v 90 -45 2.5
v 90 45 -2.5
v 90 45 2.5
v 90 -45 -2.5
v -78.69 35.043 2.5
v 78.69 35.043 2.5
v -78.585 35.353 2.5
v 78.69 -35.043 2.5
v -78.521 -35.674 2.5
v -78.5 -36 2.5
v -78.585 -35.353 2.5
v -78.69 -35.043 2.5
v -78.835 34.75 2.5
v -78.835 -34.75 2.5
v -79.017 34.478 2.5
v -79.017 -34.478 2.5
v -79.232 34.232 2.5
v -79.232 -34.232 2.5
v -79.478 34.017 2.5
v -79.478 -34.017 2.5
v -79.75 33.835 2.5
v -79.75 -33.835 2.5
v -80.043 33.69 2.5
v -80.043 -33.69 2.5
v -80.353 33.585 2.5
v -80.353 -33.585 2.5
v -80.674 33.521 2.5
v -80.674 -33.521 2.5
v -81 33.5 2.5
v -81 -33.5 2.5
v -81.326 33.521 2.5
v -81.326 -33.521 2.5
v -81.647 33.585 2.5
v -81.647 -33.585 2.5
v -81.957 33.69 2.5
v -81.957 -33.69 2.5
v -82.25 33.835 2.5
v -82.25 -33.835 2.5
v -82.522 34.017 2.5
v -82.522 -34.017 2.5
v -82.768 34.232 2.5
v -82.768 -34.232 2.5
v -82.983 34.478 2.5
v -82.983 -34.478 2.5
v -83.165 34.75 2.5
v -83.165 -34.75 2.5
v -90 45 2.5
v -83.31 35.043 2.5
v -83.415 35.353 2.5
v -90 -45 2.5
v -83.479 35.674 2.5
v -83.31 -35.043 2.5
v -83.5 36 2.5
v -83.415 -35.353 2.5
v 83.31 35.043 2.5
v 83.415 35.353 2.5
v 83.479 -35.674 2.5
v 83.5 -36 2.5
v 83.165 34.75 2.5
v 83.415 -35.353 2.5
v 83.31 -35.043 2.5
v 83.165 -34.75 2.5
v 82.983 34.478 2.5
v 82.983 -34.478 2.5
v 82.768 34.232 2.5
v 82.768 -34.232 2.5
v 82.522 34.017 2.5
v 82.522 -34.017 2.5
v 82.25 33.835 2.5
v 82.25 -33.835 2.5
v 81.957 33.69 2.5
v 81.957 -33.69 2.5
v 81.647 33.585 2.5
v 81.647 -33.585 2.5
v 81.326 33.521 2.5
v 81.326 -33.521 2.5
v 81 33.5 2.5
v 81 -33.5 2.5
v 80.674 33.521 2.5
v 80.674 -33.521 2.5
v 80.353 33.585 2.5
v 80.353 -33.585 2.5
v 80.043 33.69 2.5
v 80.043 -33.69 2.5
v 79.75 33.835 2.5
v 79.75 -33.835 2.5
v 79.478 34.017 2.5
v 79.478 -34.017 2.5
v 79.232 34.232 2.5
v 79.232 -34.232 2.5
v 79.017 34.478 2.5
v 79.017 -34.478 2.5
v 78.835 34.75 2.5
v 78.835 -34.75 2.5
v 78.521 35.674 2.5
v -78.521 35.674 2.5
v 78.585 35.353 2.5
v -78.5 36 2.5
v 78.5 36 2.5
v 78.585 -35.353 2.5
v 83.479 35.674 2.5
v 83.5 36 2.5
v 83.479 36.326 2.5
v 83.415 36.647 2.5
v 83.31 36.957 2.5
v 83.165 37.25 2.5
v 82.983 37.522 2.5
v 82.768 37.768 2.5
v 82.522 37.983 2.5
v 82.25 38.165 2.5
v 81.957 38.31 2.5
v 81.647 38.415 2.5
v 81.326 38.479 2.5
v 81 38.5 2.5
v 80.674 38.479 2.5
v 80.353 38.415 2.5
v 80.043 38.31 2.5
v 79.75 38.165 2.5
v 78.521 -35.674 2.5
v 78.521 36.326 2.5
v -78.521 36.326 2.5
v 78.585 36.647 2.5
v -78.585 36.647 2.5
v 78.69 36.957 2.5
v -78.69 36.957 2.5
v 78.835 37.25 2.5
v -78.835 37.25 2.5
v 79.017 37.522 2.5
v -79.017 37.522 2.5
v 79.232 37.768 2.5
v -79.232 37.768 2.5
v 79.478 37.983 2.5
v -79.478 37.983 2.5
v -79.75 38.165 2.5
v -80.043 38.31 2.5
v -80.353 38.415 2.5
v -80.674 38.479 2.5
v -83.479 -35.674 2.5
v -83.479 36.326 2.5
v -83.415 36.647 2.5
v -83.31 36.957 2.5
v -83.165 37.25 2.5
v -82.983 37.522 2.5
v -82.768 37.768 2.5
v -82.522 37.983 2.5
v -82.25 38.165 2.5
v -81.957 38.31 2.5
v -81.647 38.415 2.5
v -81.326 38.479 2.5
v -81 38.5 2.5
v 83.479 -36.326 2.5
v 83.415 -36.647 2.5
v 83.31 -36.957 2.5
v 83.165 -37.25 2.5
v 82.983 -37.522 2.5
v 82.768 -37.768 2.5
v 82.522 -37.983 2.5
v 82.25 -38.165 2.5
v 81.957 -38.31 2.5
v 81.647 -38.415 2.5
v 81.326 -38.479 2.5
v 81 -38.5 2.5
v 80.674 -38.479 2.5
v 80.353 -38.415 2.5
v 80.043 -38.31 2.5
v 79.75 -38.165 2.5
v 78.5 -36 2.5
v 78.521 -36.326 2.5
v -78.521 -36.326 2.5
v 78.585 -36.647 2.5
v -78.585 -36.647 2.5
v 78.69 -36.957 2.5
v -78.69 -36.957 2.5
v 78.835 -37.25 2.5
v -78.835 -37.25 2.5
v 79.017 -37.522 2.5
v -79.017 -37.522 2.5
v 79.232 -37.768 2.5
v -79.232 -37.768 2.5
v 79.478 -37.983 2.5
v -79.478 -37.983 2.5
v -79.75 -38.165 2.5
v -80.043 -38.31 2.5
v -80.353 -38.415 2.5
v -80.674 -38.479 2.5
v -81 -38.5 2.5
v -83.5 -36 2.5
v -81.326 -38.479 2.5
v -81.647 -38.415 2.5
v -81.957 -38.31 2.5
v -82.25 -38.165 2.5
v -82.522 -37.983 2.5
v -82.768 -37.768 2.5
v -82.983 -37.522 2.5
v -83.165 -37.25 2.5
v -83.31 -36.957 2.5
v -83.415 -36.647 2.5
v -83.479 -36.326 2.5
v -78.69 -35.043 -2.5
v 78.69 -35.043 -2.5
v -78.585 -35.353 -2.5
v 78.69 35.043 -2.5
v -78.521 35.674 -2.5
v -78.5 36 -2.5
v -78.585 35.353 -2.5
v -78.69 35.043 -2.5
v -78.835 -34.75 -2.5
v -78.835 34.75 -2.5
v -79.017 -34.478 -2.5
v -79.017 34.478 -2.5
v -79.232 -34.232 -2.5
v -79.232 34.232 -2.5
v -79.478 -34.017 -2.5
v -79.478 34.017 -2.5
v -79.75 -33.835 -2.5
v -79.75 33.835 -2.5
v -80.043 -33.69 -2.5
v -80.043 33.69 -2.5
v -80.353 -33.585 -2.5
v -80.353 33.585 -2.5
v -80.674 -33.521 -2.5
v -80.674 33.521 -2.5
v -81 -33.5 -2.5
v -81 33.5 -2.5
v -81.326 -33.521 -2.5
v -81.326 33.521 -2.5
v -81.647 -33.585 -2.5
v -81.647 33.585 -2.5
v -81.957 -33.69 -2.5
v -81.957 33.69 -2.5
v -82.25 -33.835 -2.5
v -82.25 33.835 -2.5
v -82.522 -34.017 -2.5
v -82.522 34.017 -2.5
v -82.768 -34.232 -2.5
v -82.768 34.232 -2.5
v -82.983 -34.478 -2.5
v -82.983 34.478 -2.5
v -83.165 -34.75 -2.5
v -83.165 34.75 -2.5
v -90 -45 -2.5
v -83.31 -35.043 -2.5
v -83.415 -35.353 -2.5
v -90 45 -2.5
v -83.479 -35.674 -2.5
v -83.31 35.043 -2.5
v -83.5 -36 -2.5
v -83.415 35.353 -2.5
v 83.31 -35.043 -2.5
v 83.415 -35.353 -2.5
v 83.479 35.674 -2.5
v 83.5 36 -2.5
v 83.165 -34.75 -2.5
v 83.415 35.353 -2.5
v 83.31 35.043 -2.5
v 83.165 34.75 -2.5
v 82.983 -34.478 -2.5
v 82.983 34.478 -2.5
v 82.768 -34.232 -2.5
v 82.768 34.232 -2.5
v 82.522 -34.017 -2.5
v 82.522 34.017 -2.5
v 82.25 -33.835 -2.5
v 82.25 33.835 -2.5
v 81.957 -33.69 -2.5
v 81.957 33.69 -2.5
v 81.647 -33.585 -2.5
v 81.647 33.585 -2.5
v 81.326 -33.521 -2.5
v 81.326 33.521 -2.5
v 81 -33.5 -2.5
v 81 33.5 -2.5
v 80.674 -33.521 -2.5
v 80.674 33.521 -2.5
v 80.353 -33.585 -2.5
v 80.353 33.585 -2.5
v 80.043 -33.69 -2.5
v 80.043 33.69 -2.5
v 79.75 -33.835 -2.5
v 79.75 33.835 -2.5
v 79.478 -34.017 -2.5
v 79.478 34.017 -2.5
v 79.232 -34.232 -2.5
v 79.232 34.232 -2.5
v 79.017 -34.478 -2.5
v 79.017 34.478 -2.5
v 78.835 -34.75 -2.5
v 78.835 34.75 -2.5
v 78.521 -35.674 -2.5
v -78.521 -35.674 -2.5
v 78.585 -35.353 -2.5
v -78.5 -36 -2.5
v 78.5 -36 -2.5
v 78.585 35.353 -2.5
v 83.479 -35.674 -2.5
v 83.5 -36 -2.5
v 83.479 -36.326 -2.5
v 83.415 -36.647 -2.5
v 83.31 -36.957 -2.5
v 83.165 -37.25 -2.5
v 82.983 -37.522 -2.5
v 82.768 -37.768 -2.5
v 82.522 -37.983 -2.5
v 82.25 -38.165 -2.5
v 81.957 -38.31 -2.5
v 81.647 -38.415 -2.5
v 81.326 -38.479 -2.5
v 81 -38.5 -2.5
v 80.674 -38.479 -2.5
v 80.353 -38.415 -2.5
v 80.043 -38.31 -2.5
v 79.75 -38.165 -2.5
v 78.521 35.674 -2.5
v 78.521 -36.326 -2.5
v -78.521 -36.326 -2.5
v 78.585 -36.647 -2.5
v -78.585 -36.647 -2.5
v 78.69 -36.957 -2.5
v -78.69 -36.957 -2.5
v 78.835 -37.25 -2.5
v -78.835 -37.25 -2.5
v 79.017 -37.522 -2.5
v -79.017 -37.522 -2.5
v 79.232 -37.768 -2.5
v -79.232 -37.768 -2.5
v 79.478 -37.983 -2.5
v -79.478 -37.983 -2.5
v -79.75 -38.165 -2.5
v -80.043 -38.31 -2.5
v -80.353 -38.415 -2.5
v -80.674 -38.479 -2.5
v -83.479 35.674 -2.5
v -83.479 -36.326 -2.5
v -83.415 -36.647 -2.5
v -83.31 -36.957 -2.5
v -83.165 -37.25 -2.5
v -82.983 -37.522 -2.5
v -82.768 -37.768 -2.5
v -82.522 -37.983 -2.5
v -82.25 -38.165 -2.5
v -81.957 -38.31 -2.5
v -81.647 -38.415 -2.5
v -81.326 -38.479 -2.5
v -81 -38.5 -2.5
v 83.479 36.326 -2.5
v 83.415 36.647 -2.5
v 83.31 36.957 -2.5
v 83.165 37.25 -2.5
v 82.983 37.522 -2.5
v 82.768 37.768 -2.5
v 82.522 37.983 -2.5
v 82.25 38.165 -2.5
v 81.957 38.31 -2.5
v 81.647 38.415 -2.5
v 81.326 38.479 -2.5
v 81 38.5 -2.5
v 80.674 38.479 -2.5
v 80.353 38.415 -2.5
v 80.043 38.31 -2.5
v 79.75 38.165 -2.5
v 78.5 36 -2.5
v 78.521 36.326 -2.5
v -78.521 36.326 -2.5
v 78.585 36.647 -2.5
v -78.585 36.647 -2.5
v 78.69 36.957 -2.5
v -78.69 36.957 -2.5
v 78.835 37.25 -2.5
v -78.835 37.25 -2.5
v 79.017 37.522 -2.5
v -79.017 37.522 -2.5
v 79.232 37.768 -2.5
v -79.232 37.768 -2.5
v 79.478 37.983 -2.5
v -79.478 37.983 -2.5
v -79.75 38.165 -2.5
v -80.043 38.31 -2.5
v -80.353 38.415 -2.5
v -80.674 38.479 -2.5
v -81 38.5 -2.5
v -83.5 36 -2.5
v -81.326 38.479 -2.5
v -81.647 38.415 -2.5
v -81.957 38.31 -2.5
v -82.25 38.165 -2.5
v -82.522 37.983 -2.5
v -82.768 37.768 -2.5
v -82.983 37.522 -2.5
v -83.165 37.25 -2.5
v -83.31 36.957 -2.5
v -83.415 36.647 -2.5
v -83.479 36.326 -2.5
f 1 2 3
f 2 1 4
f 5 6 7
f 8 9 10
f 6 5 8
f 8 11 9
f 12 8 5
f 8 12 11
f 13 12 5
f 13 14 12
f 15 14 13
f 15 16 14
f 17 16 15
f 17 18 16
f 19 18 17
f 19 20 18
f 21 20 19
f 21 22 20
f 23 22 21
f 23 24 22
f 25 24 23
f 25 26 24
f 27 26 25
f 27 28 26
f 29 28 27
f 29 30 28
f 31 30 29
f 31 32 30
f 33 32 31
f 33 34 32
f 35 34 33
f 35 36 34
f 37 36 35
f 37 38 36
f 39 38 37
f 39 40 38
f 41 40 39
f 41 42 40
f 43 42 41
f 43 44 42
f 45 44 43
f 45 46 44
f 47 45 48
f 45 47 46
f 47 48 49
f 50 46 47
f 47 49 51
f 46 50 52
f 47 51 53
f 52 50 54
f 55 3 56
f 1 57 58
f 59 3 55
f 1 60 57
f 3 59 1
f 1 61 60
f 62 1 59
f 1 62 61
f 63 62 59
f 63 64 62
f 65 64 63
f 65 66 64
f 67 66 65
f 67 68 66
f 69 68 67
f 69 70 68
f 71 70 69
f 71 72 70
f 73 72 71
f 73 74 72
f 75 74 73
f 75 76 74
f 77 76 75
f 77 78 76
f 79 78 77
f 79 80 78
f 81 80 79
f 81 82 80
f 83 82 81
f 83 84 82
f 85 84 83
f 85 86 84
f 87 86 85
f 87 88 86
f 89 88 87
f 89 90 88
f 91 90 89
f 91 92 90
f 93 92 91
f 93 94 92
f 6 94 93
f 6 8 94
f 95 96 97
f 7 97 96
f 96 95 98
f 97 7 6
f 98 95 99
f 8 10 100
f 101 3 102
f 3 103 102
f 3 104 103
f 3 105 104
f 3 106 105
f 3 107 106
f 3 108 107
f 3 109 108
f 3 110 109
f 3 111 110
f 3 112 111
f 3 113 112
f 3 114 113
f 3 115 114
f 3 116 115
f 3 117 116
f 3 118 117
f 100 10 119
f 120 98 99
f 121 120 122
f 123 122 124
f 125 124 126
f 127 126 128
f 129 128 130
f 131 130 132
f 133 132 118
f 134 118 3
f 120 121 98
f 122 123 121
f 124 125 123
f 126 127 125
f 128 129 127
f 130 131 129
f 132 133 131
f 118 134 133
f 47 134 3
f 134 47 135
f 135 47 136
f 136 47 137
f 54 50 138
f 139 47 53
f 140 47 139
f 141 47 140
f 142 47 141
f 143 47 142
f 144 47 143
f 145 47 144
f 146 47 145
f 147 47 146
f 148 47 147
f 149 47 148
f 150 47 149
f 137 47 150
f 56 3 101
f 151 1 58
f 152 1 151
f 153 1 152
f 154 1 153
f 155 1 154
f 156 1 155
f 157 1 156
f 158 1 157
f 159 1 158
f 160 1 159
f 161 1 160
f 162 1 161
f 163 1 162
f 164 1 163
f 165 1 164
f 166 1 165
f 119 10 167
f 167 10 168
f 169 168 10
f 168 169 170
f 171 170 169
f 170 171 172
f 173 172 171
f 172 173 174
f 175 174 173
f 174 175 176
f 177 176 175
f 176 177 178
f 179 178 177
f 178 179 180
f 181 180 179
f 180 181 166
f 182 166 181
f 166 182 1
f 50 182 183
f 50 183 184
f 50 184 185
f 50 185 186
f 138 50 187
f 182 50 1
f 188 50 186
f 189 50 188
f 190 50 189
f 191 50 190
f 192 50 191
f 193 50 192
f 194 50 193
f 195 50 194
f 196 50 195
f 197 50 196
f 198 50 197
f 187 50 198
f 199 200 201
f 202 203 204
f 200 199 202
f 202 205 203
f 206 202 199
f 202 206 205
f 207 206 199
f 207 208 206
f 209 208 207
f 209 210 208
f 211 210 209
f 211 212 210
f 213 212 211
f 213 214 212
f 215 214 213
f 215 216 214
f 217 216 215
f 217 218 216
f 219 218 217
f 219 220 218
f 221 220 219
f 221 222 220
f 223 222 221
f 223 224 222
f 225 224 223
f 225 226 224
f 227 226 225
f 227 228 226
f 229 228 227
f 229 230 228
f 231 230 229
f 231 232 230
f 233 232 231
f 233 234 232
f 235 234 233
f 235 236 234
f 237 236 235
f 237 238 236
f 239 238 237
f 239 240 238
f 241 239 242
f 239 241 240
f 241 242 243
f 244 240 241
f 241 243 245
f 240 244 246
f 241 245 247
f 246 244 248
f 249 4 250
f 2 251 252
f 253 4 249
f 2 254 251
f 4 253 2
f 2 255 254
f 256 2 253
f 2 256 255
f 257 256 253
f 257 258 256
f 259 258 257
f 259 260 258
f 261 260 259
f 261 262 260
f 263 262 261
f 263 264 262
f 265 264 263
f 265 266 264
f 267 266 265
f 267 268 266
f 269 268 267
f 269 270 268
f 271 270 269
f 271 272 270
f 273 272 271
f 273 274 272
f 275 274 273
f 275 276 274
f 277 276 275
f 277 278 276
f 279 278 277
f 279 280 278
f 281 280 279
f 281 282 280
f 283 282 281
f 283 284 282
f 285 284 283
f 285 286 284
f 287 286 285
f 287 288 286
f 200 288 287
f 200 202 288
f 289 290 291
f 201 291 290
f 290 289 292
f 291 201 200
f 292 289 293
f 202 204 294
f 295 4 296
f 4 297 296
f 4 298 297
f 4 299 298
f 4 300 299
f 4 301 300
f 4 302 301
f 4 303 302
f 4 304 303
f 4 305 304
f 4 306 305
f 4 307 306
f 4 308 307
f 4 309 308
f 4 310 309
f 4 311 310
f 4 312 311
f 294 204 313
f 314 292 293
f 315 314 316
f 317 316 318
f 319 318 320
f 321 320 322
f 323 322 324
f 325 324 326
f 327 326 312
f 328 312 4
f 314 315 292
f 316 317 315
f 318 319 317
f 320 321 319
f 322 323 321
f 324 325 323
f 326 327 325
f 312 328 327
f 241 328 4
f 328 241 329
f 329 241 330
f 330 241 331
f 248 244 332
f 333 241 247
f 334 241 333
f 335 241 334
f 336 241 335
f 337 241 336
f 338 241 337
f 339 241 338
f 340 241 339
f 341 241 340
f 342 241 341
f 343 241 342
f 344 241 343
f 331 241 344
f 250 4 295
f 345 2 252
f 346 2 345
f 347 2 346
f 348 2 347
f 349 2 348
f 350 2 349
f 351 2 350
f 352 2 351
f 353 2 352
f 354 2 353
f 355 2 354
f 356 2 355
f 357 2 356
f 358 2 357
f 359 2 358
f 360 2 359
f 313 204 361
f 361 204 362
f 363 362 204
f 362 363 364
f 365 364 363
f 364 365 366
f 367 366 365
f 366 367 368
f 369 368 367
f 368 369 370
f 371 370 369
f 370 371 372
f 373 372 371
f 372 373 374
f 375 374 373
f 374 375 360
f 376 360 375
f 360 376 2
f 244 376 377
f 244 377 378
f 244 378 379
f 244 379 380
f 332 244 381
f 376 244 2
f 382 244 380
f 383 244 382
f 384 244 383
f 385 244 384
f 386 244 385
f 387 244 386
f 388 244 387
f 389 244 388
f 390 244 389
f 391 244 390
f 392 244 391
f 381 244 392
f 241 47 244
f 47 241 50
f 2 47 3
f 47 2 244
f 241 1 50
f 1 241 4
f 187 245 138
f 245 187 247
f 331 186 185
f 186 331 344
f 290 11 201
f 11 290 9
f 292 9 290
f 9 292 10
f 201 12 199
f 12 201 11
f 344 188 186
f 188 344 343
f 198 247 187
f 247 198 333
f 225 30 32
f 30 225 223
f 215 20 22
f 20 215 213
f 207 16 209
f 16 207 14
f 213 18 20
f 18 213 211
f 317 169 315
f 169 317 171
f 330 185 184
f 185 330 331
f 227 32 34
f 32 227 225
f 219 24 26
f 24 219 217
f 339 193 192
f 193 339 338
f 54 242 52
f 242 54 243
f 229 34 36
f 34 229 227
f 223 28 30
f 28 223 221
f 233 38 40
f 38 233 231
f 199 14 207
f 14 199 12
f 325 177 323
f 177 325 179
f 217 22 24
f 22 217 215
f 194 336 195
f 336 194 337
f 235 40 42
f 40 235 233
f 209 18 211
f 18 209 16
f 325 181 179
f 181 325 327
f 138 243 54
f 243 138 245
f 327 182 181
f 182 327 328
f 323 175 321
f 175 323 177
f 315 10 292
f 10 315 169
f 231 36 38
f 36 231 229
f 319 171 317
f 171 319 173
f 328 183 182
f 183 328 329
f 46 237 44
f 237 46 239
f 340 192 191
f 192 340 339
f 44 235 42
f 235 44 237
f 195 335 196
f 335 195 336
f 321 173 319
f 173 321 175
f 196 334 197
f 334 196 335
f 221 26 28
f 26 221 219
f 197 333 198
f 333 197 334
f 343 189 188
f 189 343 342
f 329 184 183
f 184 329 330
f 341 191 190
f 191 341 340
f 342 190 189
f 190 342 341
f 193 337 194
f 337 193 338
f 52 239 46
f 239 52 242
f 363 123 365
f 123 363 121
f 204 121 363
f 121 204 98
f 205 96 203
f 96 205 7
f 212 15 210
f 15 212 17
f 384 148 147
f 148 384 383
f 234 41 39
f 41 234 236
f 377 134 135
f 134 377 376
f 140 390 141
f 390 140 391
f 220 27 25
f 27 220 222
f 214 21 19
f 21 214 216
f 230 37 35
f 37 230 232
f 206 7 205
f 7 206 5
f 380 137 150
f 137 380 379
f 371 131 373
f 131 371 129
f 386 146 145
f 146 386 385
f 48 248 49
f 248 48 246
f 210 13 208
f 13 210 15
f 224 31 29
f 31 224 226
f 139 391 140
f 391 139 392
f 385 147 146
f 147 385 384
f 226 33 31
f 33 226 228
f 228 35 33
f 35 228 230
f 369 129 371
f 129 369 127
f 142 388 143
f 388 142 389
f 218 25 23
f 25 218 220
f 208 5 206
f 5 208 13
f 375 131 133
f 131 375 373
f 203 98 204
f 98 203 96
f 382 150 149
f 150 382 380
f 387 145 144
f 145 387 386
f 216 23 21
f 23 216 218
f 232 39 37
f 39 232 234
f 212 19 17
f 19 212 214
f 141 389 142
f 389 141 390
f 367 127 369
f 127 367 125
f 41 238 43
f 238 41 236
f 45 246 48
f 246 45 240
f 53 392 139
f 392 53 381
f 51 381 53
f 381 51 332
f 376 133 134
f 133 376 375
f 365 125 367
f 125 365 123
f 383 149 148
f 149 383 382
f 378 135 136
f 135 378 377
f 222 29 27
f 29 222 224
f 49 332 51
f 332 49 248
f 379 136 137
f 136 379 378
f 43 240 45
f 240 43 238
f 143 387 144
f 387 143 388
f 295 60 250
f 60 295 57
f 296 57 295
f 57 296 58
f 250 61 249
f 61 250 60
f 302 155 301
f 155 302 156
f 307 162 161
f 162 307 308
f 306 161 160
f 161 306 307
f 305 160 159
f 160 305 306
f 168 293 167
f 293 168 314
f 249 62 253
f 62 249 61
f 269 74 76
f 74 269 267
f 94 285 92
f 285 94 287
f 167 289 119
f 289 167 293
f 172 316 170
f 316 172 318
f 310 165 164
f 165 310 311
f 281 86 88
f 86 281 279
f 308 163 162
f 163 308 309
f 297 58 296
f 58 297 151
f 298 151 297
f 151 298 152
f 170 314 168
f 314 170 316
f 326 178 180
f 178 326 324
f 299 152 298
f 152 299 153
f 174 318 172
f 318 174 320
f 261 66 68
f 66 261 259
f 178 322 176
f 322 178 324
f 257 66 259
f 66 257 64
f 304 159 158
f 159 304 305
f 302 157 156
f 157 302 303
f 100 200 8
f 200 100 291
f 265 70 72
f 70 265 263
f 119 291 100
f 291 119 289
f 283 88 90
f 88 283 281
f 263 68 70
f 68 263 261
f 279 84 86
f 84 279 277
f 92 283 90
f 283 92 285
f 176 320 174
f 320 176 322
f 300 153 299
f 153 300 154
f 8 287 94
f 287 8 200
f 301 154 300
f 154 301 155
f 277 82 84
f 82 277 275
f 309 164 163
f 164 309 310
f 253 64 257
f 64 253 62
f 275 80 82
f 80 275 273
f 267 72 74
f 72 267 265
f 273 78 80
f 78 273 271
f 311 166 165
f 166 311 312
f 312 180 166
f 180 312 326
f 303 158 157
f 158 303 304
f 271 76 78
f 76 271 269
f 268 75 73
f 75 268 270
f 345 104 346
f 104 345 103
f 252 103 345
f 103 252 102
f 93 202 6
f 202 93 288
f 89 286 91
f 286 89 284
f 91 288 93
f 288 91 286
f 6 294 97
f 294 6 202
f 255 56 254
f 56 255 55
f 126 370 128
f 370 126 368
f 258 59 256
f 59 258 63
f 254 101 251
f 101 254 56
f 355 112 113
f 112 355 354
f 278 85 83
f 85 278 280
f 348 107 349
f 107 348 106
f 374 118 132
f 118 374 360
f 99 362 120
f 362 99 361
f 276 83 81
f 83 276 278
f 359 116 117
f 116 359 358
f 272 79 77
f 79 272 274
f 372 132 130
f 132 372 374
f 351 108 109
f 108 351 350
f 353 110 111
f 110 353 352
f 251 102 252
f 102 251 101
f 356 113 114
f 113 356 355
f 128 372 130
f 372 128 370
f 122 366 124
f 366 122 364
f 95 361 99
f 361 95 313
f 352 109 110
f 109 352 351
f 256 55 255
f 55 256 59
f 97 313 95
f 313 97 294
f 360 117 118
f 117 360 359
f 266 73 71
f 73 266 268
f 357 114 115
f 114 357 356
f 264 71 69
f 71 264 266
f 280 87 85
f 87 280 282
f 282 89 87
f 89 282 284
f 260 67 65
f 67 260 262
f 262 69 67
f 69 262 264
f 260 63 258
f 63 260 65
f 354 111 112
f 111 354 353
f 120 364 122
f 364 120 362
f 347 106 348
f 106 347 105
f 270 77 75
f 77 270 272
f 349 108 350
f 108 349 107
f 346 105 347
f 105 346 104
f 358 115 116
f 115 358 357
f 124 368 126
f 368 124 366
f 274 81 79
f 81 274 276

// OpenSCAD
// ========================================
// a 18 x 9 x 0.5 cm plate with four 0.5 cm holes
// NeuroCAD canonical IR; dimensions are millimetres
// ========================================
$fn = 48;

difference() {
  cube(size=[180, 90, 5], center=true);
  translate([-81, -36, 0]) {
    cylinder(r=2.5, h=7, center=true);
  }
  translate([-81, 36, 0]) {
    cylinder(r=2.5, h=7, center=true);
  }
  translate([81, -36, 0]) {
    cylinder(r=2.5, h=7, center=true);
  }
  translate([81, 36, 0]) {
    cylinder(r=2.5, h=7, center=true);
  }
}
